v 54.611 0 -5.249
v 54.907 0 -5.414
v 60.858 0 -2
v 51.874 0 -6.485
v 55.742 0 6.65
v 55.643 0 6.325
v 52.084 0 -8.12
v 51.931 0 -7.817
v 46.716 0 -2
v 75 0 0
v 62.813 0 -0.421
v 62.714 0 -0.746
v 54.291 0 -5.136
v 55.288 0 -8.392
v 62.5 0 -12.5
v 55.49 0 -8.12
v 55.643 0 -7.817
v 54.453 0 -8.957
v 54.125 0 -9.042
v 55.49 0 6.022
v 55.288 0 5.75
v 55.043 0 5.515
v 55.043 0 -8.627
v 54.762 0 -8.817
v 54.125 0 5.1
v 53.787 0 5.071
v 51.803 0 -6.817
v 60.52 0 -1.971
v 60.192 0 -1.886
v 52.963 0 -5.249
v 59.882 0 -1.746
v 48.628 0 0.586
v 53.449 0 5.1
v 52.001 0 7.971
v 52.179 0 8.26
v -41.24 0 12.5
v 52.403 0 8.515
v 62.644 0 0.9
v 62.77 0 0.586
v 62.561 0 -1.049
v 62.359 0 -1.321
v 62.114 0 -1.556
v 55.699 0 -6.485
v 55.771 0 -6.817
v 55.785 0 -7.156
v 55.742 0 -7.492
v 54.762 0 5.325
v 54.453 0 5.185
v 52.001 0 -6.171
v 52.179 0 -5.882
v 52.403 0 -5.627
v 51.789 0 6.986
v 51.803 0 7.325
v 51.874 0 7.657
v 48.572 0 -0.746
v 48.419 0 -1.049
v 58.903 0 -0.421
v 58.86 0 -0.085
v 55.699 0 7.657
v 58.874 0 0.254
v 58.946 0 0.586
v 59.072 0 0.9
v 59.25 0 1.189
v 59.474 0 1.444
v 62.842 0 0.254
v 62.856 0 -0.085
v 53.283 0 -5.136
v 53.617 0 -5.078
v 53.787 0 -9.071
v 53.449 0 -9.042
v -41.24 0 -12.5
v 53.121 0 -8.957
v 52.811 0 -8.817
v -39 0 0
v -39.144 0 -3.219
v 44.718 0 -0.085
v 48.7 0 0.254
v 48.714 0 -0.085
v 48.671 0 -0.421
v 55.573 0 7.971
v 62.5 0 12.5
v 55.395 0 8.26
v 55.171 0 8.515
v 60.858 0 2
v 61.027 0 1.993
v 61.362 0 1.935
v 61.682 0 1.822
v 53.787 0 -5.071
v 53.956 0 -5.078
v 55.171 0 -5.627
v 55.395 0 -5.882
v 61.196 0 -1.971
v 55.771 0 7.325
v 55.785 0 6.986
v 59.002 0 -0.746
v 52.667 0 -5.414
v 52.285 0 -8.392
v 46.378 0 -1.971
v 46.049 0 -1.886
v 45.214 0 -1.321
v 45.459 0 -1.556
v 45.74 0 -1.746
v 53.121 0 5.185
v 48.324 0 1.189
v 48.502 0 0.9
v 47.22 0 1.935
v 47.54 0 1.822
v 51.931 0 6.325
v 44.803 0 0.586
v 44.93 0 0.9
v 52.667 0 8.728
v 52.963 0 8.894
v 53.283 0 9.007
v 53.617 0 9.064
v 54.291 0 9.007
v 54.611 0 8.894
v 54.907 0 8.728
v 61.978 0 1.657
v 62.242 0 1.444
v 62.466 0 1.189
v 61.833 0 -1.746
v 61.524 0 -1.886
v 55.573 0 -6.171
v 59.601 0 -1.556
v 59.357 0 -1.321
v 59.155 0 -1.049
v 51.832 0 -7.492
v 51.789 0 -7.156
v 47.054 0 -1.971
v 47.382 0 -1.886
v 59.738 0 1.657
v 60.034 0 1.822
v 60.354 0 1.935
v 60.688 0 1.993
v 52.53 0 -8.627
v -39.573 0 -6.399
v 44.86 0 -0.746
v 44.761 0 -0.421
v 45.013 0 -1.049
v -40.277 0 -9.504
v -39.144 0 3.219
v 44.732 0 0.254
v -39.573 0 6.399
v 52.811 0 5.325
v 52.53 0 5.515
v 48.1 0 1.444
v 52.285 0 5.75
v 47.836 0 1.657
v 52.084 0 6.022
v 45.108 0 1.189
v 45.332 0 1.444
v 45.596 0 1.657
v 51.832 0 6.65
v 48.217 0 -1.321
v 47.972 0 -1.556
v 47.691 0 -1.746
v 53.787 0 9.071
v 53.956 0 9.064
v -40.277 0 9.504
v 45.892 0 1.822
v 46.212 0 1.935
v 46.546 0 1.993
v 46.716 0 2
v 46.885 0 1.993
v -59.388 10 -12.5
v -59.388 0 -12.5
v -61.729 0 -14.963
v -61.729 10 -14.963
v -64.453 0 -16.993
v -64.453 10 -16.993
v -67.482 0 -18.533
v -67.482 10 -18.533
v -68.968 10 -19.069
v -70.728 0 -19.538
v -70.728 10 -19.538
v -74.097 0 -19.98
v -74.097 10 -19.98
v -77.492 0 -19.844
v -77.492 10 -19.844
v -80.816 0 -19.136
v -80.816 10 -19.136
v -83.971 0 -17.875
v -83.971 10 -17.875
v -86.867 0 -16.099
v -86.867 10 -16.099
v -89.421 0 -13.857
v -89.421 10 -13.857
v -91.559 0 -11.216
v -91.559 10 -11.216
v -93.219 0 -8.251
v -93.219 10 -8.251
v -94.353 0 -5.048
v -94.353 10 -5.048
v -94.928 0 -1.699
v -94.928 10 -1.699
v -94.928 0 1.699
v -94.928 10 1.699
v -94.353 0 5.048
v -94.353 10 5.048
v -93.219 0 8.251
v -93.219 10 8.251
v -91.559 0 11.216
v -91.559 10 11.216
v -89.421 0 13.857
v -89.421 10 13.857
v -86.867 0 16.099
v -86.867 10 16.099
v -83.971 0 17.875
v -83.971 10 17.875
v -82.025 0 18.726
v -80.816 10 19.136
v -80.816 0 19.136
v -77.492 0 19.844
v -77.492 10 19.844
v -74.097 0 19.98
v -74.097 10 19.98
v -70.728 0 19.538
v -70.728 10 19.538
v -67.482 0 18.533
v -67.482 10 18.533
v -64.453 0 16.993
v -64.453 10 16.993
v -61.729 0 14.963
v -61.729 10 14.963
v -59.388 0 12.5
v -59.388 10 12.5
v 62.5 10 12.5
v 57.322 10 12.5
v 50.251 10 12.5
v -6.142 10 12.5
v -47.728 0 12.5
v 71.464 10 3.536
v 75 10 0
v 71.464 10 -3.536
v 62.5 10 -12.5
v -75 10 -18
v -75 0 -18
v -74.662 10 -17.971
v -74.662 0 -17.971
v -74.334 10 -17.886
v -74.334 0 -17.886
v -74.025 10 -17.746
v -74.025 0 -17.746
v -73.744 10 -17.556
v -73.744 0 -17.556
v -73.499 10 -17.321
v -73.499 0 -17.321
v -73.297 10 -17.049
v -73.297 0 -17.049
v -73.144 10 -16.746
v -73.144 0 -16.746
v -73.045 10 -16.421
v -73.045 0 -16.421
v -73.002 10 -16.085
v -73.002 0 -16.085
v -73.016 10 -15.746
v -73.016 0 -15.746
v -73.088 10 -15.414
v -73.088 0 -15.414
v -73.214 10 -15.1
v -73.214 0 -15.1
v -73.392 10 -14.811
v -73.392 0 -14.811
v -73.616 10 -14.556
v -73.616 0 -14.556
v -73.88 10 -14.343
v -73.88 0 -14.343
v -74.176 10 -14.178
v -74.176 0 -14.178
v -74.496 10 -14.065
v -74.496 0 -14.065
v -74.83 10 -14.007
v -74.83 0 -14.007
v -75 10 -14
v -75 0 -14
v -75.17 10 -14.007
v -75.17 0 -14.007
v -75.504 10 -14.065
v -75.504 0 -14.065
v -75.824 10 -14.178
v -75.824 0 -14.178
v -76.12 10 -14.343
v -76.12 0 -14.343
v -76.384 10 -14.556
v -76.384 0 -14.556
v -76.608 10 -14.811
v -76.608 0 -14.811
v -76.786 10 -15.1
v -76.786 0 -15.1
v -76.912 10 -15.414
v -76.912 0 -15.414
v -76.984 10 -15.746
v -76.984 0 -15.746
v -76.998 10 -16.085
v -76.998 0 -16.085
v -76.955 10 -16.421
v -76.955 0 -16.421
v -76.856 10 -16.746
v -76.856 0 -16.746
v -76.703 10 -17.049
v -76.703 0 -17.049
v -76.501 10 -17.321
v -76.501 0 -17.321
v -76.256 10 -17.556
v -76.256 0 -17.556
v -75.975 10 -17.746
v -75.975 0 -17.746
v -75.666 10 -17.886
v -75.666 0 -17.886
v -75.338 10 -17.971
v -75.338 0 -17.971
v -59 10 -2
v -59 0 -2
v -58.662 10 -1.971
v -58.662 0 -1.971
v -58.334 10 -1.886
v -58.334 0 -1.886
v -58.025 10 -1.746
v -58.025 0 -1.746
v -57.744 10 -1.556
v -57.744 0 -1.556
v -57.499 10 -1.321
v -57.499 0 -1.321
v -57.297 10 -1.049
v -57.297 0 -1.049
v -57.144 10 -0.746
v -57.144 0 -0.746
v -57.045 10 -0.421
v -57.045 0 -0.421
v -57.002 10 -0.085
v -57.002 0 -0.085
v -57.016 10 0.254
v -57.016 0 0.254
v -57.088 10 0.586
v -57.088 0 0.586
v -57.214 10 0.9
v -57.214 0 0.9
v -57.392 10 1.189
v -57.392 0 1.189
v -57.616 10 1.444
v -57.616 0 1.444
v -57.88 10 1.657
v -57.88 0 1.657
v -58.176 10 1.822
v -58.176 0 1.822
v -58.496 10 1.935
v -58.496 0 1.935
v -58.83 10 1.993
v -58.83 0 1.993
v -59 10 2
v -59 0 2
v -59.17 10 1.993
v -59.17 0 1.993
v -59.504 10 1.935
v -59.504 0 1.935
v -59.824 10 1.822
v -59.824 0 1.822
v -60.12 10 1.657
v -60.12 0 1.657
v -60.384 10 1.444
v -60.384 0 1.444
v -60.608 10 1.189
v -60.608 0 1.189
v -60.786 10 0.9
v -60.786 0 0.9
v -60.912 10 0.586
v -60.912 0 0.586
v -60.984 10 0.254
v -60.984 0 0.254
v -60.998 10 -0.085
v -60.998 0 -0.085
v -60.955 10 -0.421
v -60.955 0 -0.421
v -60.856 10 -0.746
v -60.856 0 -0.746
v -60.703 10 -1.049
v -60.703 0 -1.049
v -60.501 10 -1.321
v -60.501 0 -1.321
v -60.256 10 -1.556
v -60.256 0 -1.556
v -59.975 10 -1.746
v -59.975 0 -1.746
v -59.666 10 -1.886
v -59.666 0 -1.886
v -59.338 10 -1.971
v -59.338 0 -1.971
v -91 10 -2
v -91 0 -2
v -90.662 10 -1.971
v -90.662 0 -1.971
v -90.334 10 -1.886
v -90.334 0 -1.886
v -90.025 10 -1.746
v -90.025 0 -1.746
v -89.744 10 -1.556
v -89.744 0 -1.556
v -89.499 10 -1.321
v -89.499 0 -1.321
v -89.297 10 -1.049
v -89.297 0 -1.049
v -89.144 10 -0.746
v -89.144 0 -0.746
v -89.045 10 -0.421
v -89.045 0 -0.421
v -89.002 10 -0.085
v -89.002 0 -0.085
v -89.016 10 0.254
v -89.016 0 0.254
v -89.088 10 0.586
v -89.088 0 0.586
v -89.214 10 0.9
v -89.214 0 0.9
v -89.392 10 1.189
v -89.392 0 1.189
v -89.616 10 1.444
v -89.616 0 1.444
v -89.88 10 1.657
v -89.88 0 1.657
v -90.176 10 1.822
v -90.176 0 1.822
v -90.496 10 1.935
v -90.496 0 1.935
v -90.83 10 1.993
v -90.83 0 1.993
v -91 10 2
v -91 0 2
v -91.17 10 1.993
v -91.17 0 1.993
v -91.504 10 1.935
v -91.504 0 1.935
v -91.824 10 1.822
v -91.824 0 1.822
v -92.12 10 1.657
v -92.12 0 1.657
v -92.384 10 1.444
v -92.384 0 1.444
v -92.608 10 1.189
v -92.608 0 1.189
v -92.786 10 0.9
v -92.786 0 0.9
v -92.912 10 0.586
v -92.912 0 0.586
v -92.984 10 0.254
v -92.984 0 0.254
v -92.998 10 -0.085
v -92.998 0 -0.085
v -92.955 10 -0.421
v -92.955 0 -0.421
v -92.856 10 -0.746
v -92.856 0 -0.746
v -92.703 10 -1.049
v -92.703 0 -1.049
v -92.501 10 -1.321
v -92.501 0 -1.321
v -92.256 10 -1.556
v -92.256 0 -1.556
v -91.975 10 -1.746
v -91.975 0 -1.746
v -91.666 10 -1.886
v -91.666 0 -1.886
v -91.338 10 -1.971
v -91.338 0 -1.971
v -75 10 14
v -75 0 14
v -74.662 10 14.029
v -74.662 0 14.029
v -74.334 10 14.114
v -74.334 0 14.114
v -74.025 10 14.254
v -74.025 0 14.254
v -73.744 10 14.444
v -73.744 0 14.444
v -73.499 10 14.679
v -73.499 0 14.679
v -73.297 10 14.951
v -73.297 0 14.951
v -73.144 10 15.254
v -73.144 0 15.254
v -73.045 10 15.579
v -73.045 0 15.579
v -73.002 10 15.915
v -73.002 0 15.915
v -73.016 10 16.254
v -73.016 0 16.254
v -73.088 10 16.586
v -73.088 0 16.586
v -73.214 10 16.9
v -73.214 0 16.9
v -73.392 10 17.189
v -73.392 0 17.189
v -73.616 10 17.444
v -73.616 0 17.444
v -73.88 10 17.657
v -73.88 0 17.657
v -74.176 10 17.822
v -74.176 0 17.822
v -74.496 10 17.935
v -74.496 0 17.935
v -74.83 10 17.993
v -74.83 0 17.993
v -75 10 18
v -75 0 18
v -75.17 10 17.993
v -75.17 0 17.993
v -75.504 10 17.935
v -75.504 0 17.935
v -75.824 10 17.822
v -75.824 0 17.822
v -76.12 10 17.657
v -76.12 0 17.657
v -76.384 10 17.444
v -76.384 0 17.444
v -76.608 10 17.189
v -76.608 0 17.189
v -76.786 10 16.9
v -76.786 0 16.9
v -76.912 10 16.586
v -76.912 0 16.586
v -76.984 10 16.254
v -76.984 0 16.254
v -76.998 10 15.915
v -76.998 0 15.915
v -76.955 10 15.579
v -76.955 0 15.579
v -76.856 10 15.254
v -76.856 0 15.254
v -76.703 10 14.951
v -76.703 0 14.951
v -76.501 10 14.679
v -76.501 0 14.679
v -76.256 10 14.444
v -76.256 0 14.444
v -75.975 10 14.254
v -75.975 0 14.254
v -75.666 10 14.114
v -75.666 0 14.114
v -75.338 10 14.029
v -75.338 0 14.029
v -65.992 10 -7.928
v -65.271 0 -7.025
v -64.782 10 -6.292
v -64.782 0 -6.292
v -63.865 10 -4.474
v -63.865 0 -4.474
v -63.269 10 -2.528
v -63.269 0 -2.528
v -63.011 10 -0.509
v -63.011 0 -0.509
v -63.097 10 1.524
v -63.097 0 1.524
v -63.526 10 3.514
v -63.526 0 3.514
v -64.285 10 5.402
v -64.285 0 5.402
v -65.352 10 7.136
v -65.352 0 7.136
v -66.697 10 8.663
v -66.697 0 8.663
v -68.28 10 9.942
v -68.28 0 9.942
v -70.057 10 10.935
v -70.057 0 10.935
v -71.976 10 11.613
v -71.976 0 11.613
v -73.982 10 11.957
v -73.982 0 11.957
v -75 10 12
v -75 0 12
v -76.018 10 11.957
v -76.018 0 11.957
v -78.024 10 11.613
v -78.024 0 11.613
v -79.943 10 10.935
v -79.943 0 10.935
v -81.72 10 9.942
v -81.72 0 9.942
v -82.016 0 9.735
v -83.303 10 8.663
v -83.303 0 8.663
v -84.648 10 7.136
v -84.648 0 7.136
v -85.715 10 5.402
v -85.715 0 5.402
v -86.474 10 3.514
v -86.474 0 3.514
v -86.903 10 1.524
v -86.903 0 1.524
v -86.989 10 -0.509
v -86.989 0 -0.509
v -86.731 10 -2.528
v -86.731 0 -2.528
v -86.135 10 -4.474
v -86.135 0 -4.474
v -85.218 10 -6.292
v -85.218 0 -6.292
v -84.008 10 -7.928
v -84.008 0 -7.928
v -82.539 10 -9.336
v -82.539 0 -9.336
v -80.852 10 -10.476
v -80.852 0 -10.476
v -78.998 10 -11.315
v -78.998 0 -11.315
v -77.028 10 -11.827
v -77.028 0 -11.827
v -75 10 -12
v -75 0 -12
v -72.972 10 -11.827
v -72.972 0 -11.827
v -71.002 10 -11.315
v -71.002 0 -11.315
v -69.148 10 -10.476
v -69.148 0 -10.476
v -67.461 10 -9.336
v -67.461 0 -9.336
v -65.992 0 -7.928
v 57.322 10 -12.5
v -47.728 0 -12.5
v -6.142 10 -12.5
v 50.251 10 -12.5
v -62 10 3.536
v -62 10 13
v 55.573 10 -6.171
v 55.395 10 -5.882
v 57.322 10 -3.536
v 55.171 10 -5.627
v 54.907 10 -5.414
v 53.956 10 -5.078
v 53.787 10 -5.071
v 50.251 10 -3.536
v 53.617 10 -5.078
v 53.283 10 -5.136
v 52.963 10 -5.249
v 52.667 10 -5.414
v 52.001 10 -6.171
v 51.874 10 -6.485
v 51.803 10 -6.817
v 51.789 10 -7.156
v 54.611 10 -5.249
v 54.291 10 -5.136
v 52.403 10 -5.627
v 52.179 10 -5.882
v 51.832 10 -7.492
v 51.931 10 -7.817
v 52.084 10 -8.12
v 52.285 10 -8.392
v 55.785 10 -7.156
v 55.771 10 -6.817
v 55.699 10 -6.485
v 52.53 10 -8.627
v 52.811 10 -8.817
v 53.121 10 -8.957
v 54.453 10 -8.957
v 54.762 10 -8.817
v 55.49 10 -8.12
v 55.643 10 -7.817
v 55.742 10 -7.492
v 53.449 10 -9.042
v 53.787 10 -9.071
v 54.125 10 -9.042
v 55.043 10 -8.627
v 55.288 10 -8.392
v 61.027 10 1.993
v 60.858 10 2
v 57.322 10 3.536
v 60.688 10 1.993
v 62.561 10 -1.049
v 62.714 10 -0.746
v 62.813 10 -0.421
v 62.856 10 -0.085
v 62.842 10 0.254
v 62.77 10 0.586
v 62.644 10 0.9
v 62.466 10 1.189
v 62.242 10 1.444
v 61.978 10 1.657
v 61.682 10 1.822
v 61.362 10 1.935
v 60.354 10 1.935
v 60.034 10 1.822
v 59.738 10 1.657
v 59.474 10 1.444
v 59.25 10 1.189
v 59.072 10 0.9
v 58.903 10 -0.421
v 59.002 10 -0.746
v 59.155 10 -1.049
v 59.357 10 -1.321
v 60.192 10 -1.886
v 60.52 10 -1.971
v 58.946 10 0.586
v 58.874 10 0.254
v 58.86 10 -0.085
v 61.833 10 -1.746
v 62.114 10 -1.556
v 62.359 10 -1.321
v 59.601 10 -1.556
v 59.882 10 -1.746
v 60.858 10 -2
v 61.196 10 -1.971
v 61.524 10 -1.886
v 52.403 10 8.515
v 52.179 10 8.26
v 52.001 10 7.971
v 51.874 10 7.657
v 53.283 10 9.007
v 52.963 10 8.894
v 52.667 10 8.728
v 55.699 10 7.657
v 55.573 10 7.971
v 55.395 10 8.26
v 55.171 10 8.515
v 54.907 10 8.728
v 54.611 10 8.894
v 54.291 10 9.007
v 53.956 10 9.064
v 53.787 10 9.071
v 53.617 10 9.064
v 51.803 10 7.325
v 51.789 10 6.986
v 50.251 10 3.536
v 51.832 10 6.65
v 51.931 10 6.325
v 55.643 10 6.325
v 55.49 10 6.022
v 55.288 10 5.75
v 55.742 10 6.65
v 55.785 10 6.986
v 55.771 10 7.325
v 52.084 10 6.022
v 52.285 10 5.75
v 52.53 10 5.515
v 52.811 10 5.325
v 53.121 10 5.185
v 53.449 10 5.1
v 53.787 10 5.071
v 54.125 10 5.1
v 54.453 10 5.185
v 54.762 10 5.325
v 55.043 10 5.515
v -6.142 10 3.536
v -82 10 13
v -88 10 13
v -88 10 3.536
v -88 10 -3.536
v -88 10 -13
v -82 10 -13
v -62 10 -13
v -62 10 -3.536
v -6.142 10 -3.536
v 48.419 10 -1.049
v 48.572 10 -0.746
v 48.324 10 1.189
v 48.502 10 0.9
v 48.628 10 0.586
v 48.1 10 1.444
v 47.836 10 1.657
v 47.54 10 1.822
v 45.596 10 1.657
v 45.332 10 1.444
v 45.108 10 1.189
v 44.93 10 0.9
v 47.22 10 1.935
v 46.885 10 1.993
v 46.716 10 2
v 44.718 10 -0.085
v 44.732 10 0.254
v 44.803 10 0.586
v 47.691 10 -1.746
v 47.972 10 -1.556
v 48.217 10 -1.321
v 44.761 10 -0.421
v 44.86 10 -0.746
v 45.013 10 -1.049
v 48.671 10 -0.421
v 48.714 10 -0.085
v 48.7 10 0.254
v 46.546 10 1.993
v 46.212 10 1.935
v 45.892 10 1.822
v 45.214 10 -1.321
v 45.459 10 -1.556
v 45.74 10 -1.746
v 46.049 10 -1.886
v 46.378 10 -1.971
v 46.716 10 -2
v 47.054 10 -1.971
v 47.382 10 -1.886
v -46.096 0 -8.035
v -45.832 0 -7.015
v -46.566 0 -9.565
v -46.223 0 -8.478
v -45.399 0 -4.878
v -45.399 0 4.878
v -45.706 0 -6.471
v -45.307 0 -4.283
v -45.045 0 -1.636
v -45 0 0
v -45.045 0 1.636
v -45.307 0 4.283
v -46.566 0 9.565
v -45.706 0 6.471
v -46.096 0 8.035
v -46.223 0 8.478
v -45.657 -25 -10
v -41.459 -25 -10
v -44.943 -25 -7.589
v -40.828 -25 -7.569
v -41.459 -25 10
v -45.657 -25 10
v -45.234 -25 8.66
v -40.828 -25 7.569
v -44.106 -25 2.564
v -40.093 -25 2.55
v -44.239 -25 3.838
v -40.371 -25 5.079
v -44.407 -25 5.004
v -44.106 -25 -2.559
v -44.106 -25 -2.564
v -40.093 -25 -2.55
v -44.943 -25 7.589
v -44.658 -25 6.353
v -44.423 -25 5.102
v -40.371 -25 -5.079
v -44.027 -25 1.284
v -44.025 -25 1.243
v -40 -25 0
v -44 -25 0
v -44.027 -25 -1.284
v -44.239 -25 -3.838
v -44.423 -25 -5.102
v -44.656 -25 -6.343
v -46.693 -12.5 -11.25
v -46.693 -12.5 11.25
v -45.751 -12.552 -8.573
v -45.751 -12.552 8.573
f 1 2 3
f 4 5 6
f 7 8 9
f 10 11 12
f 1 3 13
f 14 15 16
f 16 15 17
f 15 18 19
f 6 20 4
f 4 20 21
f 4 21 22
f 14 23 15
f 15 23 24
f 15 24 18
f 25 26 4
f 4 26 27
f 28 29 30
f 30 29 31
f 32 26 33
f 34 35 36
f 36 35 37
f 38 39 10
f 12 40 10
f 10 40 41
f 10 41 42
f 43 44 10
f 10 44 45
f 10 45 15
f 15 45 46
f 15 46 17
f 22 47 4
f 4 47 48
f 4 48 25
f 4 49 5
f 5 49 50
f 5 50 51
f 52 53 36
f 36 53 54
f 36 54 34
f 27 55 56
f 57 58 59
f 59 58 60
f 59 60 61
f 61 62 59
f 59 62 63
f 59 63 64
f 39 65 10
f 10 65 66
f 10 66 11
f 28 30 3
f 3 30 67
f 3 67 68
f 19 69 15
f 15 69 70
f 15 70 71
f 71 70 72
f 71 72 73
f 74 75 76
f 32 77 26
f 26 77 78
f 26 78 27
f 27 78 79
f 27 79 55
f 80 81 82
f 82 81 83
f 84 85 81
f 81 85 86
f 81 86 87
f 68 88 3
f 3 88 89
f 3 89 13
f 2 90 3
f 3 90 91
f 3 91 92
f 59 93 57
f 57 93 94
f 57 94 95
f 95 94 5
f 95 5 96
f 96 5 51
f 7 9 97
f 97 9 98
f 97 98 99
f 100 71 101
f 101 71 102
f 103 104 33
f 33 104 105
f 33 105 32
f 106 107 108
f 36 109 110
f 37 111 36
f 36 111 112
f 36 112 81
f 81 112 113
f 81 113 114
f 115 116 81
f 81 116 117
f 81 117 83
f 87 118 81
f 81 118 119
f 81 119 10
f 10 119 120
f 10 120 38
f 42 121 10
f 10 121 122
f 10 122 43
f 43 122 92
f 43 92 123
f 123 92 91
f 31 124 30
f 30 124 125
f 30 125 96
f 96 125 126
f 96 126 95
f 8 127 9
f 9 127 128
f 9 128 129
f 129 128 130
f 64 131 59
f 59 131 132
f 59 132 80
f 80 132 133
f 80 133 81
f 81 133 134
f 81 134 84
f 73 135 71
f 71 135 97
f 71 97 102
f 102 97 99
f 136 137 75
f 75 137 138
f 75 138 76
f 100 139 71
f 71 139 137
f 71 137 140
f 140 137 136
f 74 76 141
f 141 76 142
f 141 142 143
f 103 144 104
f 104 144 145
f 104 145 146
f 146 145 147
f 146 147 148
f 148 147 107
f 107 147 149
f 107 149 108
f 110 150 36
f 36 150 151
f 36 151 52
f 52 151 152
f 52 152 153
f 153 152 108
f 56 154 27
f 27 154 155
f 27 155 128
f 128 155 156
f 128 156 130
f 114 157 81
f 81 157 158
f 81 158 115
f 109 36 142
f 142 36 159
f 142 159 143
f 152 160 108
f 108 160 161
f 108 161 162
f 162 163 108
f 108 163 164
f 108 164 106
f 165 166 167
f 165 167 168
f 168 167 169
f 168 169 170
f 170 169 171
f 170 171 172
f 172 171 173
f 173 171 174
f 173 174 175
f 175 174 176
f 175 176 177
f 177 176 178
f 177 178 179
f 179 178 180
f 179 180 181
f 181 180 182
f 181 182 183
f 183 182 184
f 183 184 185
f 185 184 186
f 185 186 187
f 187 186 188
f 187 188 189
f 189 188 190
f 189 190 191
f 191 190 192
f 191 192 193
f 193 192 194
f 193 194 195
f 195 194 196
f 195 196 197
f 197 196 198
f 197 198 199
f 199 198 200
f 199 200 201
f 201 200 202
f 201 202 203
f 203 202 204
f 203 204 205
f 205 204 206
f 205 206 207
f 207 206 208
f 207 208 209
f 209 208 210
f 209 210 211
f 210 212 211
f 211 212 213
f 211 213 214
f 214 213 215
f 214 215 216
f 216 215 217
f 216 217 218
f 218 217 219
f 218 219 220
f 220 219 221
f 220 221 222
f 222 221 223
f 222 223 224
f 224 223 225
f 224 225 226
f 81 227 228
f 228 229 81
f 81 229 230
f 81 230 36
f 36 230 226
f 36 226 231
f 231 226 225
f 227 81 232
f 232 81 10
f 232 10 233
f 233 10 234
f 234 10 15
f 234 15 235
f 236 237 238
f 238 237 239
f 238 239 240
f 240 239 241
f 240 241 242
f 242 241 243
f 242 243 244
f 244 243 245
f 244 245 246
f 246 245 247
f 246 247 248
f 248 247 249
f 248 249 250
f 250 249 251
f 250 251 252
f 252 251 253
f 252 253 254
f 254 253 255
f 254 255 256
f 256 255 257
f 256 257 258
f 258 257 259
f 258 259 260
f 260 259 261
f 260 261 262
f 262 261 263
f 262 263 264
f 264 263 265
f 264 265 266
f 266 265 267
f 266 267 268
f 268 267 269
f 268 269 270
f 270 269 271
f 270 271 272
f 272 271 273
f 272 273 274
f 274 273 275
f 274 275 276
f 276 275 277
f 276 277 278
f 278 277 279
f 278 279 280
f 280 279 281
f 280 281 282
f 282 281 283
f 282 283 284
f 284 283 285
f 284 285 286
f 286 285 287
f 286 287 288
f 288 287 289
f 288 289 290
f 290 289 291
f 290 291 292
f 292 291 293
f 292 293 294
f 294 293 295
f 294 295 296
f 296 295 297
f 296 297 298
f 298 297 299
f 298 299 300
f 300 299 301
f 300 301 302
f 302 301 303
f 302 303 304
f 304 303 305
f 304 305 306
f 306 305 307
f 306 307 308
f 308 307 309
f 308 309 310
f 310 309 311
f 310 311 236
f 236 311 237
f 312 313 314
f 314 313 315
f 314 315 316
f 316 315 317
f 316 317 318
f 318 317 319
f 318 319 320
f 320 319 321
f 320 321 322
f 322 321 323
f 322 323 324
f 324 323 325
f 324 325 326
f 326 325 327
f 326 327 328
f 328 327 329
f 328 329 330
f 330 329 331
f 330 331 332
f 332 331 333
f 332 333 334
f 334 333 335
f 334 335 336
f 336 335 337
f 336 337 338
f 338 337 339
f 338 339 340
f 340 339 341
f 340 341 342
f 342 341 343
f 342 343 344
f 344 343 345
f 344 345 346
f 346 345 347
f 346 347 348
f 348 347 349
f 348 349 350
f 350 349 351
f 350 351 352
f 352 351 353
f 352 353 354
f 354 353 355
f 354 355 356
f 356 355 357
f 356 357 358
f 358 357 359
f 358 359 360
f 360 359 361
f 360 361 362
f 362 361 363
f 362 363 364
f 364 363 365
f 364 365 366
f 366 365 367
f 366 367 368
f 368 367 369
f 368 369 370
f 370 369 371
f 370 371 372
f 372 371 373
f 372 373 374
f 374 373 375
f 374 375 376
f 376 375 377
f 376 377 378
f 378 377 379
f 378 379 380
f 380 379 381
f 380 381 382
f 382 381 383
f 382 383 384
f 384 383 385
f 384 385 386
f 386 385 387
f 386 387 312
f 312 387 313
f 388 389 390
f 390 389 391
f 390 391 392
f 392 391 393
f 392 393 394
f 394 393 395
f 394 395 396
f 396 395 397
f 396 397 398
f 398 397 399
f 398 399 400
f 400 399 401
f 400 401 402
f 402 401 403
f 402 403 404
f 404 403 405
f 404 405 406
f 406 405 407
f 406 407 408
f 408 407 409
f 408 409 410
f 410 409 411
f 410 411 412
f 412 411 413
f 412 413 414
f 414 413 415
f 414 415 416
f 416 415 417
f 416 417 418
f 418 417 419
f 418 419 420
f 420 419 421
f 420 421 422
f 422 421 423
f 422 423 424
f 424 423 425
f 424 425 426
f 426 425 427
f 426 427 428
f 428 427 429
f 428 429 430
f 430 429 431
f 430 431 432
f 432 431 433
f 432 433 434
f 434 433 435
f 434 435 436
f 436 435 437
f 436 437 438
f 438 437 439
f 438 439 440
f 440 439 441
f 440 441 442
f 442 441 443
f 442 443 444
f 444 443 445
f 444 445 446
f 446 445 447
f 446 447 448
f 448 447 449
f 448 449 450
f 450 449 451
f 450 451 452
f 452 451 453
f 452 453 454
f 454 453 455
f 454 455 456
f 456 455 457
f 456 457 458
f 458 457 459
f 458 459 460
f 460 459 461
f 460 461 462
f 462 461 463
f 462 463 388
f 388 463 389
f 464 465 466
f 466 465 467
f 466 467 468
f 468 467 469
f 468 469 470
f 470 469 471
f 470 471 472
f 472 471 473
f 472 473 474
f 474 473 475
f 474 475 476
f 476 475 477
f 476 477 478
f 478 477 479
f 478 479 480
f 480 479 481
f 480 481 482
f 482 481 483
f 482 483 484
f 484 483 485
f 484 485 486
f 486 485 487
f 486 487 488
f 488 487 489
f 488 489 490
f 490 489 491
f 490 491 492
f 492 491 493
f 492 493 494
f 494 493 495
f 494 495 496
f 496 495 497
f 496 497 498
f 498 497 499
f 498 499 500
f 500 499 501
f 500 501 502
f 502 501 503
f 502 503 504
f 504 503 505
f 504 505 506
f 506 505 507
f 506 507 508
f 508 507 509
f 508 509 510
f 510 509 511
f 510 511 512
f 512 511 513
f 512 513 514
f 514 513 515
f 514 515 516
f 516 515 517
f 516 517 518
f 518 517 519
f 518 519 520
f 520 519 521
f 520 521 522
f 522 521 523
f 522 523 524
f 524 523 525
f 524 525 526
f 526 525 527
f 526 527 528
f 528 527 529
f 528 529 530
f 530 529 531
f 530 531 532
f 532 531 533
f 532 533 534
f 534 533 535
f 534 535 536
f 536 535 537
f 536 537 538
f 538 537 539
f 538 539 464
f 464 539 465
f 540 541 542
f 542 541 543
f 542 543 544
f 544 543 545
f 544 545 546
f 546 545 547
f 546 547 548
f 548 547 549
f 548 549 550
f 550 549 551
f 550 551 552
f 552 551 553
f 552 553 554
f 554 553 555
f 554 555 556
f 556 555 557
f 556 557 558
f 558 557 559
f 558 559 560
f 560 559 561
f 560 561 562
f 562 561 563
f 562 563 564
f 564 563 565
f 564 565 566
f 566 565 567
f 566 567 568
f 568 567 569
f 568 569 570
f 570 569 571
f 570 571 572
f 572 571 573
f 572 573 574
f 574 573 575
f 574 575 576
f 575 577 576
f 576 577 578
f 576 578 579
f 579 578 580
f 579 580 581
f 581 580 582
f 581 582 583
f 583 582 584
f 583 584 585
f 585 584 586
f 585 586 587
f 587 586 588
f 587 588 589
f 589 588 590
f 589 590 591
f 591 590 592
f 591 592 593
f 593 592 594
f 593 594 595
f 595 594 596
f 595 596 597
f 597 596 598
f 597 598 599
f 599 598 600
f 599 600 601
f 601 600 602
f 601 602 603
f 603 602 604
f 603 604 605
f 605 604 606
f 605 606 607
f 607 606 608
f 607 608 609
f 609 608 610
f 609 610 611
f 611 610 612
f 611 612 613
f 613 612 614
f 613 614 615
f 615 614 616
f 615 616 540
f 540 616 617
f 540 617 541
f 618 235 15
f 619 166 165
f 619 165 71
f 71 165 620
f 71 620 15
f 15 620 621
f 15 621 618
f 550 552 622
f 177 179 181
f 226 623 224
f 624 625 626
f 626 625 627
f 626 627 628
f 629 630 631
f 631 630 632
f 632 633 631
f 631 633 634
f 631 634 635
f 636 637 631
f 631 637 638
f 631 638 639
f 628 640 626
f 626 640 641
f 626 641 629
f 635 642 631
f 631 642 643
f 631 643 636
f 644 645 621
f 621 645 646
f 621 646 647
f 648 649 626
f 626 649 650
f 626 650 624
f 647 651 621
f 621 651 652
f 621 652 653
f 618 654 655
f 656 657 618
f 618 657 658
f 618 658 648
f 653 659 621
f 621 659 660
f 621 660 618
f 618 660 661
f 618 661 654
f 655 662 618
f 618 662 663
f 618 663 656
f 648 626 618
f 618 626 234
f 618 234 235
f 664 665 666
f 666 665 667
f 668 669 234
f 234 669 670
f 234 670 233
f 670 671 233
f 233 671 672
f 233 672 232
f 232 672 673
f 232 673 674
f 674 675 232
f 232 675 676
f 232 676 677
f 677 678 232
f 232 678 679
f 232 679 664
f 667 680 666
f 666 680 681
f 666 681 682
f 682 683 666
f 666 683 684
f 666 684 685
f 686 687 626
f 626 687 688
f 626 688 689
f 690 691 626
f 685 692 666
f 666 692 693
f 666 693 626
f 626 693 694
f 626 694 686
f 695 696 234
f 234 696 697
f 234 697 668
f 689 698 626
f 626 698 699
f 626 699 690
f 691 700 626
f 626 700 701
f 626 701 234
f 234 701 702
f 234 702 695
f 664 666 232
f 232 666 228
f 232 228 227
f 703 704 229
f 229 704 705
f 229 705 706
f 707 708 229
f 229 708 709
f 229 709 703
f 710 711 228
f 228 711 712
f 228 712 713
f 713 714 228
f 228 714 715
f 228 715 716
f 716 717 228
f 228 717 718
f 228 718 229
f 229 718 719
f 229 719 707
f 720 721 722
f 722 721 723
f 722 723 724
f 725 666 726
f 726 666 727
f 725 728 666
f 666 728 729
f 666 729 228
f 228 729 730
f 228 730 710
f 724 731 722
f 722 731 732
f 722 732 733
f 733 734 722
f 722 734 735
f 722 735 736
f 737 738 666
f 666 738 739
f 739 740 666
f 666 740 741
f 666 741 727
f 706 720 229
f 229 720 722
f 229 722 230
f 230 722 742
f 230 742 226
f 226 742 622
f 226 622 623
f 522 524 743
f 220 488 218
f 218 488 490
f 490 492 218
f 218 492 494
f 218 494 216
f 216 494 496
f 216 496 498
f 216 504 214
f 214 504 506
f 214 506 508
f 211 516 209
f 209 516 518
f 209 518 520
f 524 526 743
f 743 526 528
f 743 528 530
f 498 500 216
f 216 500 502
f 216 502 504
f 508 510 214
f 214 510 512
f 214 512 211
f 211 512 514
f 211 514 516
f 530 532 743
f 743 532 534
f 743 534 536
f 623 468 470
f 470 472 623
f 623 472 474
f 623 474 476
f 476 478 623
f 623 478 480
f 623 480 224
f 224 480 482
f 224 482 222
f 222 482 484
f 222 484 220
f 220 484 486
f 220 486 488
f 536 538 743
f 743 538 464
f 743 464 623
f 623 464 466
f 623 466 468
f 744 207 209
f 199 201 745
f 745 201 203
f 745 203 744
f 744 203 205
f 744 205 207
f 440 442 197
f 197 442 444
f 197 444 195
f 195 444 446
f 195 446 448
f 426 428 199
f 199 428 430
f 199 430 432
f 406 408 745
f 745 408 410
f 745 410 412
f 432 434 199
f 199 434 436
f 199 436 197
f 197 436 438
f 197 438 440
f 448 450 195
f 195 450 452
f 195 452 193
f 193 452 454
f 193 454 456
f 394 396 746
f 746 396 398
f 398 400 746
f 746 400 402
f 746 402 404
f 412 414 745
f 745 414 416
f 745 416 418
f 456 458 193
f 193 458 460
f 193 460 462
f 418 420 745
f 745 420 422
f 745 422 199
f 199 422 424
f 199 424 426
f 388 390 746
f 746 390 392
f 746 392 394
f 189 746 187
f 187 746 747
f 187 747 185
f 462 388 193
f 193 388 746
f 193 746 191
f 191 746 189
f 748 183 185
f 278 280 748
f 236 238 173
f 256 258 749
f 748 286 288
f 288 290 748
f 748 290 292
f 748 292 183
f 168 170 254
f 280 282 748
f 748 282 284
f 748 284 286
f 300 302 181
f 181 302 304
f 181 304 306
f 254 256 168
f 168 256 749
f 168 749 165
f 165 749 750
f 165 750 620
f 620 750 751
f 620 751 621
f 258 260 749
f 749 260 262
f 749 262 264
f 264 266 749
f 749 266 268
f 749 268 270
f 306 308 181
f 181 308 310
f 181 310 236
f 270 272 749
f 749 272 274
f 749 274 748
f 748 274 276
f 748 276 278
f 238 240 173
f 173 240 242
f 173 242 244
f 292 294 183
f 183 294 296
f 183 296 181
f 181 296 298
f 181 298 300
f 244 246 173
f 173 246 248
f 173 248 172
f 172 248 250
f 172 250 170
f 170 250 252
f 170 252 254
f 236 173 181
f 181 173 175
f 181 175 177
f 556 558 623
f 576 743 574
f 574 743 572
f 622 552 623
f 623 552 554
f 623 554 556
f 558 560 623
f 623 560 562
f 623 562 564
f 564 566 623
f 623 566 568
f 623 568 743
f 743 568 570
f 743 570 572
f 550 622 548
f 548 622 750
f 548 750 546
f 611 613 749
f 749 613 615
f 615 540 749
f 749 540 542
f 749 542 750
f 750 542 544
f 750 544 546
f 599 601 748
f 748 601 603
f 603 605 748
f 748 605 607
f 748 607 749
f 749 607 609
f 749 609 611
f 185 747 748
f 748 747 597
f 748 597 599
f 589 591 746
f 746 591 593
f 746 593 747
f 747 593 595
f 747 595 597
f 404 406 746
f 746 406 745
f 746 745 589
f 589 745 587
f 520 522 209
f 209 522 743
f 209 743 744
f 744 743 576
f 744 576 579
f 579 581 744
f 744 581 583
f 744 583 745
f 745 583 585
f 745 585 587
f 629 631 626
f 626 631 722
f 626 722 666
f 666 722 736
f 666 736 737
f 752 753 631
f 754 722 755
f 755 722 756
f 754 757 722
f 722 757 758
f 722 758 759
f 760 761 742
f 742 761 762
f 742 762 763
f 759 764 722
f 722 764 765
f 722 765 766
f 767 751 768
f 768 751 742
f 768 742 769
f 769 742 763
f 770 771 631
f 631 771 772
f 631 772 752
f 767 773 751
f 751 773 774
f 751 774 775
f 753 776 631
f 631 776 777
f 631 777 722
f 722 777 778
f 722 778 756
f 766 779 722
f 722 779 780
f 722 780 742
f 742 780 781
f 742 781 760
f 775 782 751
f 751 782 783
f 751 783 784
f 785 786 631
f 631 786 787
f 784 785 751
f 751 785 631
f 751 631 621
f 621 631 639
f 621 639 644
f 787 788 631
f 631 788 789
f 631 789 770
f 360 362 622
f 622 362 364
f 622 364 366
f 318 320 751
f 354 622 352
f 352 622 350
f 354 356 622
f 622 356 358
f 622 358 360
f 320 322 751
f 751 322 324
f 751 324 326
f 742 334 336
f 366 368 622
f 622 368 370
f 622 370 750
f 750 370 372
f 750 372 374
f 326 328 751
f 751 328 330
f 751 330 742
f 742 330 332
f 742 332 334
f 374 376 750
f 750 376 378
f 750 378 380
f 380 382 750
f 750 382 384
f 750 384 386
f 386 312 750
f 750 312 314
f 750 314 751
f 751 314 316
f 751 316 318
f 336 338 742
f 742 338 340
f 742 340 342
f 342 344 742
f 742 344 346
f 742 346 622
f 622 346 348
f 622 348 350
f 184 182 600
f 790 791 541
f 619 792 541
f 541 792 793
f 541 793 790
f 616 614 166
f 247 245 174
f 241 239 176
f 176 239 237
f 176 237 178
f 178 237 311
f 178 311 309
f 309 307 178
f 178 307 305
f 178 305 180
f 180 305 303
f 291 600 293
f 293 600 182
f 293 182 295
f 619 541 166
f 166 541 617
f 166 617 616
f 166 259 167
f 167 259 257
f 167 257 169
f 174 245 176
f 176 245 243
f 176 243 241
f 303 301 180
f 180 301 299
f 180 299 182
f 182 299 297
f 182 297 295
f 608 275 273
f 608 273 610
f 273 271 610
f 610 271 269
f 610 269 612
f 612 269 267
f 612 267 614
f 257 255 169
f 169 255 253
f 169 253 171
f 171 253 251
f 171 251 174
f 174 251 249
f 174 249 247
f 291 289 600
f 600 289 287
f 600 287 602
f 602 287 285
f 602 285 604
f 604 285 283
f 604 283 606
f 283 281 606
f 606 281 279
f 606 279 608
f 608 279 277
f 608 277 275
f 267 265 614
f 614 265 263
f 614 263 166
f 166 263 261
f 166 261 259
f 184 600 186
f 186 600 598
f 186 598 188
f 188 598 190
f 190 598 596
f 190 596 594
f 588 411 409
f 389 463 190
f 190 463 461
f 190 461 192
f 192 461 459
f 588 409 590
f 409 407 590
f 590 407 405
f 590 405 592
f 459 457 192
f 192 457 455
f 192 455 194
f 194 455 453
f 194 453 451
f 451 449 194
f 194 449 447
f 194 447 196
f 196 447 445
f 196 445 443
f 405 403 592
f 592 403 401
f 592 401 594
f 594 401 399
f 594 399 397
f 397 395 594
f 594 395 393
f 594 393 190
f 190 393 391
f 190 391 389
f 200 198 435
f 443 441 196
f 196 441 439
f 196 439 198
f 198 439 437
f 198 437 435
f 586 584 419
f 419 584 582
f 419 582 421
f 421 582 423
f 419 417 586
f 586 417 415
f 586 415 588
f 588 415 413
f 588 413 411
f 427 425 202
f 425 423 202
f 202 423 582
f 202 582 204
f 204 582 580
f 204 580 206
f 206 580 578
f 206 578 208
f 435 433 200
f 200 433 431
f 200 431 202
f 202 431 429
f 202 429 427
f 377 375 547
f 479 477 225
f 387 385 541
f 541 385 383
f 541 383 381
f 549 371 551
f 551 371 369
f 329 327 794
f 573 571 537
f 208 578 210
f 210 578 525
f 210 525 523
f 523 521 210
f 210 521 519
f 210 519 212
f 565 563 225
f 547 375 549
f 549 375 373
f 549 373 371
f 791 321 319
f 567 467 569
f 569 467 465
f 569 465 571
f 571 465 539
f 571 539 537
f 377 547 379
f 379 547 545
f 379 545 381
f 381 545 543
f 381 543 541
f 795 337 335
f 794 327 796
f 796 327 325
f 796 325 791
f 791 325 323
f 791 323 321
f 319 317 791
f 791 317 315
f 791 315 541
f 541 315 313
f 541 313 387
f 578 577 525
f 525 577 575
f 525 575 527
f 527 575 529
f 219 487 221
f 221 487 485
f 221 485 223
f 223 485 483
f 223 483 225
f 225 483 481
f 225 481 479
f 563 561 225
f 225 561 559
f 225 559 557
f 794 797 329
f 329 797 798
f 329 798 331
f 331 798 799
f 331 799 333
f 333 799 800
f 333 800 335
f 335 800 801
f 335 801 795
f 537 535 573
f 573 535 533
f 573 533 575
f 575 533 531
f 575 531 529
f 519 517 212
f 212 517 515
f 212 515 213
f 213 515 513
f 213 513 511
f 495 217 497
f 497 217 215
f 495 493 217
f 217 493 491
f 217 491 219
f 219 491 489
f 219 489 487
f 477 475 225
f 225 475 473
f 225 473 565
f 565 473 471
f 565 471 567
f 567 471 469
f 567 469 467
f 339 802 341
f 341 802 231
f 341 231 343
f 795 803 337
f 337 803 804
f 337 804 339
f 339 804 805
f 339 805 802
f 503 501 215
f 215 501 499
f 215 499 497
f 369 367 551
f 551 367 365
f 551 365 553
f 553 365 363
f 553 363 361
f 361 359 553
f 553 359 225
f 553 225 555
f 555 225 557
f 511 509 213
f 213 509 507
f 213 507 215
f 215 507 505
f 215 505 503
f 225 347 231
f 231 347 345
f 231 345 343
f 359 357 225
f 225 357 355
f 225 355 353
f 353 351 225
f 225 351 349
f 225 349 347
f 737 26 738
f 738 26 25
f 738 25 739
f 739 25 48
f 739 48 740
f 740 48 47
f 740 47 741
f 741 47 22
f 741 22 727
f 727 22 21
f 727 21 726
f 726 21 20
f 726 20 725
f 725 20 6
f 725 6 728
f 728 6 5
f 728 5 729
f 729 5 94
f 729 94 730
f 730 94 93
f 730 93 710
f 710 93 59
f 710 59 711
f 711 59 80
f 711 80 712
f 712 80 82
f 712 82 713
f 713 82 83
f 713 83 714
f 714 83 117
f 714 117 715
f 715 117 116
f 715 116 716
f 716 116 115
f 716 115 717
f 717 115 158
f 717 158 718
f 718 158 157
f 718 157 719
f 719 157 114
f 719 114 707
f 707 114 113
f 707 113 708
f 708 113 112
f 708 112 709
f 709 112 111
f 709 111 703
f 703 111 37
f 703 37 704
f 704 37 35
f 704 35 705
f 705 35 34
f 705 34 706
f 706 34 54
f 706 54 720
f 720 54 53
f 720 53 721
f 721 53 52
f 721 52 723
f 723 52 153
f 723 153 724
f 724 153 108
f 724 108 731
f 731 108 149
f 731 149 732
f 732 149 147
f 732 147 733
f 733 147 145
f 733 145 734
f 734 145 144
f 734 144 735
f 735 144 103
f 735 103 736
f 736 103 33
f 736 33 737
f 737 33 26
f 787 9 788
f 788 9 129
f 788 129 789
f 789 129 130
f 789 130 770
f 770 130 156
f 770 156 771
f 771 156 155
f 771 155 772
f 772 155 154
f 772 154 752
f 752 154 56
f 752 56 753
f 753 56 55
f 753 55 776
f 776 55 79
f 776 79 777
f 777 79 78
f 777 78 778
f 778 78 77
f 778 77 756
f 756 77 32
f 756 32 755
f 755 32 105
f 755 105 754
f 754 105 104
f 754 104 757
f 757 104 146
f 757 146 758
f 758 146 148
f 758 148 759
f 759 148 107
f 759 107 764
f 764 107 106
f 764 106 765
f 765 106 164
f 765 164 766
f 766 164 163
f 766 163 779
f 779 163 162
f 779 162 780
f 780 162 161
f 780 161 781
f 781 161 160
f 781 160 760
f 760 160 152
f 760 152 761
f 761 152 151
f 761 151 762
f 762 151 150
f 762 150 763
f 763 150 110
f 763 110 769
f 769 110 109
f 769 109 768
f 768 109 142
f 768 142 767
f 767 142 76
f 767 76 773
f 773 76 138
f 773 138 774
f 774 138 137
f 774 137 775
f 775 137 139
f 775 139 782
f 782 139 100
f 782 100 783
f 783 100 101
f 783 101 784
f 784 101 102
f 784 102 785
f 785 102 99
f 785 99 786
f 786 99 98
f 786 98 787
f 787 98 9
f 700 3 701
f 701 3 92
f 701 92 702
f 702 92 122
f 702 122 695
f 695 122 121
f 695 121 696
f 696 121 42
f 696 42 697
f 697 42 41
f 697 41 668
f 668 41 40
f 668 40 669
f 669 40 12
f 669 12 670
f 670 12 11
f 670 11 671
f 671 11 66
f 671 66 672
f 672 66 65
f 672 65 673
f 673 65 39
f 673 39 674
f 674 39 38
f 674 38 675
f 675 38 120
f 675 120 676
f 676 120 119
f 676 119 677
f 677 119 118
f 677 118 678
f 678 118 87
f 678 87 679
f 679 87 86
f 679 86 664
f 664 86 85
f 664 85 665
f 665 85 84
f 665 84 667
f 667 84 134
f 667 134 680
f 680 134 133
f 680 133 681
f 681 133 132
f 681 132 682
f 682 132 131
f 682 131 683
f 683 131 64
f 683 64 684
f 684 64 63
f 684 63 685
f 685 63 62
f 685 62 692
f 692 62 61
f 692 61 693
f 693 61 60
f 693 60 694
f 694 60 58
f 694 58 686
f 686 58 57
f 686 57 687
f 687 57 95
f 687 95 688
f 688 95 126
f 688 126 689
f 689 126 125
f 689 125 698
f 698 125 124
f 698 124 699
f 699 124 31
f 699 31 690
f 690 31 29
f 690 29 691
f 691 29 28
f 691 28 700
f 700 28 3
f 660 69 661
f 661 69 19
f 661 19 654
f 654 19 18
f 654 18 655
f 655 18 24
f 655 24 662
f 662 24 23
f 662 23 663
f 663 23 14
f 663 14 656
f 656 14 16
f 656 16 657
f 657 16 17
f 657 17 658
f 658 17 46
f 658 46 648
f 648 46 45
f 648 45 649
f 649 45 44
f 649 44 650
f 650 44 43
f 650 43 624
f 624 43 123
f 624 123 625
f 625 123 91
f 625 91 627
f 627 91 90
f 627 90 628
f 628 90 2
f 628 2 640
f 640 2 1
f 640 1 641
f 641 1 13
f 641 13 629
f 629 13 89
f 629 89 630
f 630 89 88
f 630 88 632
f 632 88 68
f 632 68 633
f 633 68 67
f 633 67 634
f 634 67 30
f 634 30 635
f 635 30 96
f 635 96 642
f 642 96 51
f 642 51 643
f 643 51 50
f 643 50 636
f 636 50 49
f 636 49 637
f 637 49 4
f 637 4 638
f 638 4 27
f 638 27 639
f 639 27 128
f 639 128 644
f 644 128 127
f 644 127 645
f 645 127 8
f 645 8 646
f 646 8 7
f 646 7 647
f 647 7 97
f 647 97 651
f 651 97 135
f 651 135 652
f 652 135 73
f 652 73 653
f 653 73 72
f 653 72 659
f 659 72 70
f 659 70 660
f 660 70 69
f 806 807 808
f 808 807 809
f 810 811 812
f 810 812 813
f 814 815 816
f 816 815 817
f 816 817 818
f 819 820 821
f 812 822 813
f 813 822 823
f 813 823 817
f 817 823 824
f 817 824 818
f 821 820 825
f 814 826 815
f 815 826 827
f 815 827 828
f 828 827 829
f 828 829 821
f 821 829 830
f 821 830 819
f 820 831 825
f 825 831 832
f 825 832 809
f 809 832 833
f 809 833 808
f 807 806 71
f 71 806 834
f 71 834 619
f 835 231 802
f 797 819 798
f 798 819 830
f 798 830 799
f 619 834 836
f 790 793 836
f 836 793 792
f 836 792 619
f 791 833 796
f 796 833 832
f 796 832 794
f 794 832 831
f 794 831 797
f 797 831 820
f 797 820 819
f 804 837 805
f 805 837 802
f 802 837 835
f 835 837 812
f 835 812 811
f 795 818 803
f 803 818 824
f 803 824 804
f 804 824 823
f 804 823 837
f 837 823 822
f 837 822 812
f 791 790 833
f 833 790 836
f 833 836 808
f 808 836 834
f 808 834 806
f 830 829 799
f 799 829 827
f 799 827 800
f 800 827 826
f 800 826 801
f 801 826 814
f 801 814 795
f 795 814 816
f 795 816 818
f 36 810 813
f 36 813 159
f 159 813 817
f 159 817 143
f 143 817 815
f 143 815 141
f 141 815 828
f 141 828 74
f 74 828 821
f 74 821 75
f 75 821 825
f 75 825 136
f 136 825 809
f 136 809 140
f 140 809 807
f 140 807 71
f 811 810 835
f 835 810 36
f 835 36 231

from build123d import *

# Parameters (mm, degrees)
SKETCH_1_R          = 2
EXTRUDE_1_DEPTH     = 10
SKETCH_2_R          = 2
CUT_EXTRUDE_1_DEPTH = 10


with BuildPart() as part:
    # 스케치1 → 보스-돌출1 (new body)
    with BuildSketch(Plane(origin=(0, 0, 0), x_dir=(1, 0, 0), z_dir=(0, 1, 0))):
        with BuildLine():
            ThreePointArc((-59.387505004, 12.5), (-95, 0), (-59.387505004, -12.5))
            Line((-59.387505004, -12.5), (62.5, -12.5))
            Line((62.5, -12.5), (75, 0))
            Line((75, 0), (62.5, 12.5))
            Line((62.5, 12.5), (-59.387505004, 12.5))
        make_face()
        with Locations(Location((-75, -16, 0), (0, 0, 270))):
            Circle(SKETCH_1_R, mode=Mode.SUBTRACT)
        with Locations(Location((-91, 0, 0), (0, 0, 270))):
            Circle(SKETCH_1_R, mode=Mode.SUBTRACT)
        with BuildLine():
            ThreePointArc((-75, 12), (-66.514718626, 8.485281374), (-63, 0))
            ThreePointArc((-63, 0), (-83.485281374, -8.485281374), (-75, 12))
        make_face(mode=Mode.SUBTRACT)
        with BuildLine():
            ThreePointArc((-61, 0), (-59, 2), (-57, 0))
            ThreePointArc((-57, 0), (-59, -2), (-61, 0))
        make_face(mode=Mode.SUBTRACT)
        with Locations(Location((-75, 16, 0), (0, 0, 270))):
            Circle(SKETCH_1_R, mode=Mode.SUBTRACT)
    extrude(amount=EXTRUDE_1_DEPTH)

    # 스케치2 → 컷-돌출1 (cut)
    with BuildSketch(Plane(origin=(0, 0, 0), x_dir=(1, 0, 0), z_dir=(0, 1, 0))):
        with Locations(Location((53.786796564, 7.071067812, 0), (0, 0, 270))):
            Circle(SKETCH_2_R)
        with Locations(Location((60.857864376, 0, 0), (0, 0, 270))):
            Circle(SKETCH_2_R)
        with Locations(Location((46.715728753, 0, 0), (0, 0, 270))):
            Circle(SKETCH_2_R)
        with Locations(Location((53.786796564, -7.071067812, 0), (0, 0, 270))):
            Circle(SKETCH_2_R)
    extrude(amount=CUT_EXTRUDE_1_DEPTH, mode=Mode.SUBTRACT)

    # 스케치3 for 로프트1 → 로프트1 section 0
    with BuildSketch(Plane(origin=(0, 0, 0), x_dir=(1, 0, 0), z_dir=(0, 1, 0))):
        with BuildLine():
            Line((-41.239816351, 12.5), (-47.728219713, 12.5))
            # circular arc as an exact rational Bezier (weights 1, cos(half-angle), 1)
            Bezier((-47.728219713, 12.5), (-41.998854107, 0), (-47.728219713, -12.5), weights=[1, 0.909059343, 1])
            Line((-47.728219713, -12.5), (-41.239816351, -12.5))
            Bezier((-41.239816351, -12.5), (-36.611583234, 0), (-41.239816351, 12.5), weights=[1, 0.937782879, 1])
        make_face()
    # 스케치4 for 로프트1 → 로프트1 section 1
    with BuildSketch(Plane(origin=(0, -25, 0), x_dir=(1, 0, 0), z_dir=(0, 1, 0))):
        with BuildLine():
            Line((-45.657198498, -10), (-41.458980338, -10))
            Bezier((-41.458980338, -10), (-38.477556368, 0), (-41.458980338, 10), weights=[1, 0.958314847, 1])
            Line((-41.458980338, 10), (-45.657198498, 10))
            Bezier((-45.657198498, 10), (-42.249207615, 0), (-45.657198498, -10), weights=[1, 0.946541984, 1])
        make_face()
    loft()


solid = part.part
